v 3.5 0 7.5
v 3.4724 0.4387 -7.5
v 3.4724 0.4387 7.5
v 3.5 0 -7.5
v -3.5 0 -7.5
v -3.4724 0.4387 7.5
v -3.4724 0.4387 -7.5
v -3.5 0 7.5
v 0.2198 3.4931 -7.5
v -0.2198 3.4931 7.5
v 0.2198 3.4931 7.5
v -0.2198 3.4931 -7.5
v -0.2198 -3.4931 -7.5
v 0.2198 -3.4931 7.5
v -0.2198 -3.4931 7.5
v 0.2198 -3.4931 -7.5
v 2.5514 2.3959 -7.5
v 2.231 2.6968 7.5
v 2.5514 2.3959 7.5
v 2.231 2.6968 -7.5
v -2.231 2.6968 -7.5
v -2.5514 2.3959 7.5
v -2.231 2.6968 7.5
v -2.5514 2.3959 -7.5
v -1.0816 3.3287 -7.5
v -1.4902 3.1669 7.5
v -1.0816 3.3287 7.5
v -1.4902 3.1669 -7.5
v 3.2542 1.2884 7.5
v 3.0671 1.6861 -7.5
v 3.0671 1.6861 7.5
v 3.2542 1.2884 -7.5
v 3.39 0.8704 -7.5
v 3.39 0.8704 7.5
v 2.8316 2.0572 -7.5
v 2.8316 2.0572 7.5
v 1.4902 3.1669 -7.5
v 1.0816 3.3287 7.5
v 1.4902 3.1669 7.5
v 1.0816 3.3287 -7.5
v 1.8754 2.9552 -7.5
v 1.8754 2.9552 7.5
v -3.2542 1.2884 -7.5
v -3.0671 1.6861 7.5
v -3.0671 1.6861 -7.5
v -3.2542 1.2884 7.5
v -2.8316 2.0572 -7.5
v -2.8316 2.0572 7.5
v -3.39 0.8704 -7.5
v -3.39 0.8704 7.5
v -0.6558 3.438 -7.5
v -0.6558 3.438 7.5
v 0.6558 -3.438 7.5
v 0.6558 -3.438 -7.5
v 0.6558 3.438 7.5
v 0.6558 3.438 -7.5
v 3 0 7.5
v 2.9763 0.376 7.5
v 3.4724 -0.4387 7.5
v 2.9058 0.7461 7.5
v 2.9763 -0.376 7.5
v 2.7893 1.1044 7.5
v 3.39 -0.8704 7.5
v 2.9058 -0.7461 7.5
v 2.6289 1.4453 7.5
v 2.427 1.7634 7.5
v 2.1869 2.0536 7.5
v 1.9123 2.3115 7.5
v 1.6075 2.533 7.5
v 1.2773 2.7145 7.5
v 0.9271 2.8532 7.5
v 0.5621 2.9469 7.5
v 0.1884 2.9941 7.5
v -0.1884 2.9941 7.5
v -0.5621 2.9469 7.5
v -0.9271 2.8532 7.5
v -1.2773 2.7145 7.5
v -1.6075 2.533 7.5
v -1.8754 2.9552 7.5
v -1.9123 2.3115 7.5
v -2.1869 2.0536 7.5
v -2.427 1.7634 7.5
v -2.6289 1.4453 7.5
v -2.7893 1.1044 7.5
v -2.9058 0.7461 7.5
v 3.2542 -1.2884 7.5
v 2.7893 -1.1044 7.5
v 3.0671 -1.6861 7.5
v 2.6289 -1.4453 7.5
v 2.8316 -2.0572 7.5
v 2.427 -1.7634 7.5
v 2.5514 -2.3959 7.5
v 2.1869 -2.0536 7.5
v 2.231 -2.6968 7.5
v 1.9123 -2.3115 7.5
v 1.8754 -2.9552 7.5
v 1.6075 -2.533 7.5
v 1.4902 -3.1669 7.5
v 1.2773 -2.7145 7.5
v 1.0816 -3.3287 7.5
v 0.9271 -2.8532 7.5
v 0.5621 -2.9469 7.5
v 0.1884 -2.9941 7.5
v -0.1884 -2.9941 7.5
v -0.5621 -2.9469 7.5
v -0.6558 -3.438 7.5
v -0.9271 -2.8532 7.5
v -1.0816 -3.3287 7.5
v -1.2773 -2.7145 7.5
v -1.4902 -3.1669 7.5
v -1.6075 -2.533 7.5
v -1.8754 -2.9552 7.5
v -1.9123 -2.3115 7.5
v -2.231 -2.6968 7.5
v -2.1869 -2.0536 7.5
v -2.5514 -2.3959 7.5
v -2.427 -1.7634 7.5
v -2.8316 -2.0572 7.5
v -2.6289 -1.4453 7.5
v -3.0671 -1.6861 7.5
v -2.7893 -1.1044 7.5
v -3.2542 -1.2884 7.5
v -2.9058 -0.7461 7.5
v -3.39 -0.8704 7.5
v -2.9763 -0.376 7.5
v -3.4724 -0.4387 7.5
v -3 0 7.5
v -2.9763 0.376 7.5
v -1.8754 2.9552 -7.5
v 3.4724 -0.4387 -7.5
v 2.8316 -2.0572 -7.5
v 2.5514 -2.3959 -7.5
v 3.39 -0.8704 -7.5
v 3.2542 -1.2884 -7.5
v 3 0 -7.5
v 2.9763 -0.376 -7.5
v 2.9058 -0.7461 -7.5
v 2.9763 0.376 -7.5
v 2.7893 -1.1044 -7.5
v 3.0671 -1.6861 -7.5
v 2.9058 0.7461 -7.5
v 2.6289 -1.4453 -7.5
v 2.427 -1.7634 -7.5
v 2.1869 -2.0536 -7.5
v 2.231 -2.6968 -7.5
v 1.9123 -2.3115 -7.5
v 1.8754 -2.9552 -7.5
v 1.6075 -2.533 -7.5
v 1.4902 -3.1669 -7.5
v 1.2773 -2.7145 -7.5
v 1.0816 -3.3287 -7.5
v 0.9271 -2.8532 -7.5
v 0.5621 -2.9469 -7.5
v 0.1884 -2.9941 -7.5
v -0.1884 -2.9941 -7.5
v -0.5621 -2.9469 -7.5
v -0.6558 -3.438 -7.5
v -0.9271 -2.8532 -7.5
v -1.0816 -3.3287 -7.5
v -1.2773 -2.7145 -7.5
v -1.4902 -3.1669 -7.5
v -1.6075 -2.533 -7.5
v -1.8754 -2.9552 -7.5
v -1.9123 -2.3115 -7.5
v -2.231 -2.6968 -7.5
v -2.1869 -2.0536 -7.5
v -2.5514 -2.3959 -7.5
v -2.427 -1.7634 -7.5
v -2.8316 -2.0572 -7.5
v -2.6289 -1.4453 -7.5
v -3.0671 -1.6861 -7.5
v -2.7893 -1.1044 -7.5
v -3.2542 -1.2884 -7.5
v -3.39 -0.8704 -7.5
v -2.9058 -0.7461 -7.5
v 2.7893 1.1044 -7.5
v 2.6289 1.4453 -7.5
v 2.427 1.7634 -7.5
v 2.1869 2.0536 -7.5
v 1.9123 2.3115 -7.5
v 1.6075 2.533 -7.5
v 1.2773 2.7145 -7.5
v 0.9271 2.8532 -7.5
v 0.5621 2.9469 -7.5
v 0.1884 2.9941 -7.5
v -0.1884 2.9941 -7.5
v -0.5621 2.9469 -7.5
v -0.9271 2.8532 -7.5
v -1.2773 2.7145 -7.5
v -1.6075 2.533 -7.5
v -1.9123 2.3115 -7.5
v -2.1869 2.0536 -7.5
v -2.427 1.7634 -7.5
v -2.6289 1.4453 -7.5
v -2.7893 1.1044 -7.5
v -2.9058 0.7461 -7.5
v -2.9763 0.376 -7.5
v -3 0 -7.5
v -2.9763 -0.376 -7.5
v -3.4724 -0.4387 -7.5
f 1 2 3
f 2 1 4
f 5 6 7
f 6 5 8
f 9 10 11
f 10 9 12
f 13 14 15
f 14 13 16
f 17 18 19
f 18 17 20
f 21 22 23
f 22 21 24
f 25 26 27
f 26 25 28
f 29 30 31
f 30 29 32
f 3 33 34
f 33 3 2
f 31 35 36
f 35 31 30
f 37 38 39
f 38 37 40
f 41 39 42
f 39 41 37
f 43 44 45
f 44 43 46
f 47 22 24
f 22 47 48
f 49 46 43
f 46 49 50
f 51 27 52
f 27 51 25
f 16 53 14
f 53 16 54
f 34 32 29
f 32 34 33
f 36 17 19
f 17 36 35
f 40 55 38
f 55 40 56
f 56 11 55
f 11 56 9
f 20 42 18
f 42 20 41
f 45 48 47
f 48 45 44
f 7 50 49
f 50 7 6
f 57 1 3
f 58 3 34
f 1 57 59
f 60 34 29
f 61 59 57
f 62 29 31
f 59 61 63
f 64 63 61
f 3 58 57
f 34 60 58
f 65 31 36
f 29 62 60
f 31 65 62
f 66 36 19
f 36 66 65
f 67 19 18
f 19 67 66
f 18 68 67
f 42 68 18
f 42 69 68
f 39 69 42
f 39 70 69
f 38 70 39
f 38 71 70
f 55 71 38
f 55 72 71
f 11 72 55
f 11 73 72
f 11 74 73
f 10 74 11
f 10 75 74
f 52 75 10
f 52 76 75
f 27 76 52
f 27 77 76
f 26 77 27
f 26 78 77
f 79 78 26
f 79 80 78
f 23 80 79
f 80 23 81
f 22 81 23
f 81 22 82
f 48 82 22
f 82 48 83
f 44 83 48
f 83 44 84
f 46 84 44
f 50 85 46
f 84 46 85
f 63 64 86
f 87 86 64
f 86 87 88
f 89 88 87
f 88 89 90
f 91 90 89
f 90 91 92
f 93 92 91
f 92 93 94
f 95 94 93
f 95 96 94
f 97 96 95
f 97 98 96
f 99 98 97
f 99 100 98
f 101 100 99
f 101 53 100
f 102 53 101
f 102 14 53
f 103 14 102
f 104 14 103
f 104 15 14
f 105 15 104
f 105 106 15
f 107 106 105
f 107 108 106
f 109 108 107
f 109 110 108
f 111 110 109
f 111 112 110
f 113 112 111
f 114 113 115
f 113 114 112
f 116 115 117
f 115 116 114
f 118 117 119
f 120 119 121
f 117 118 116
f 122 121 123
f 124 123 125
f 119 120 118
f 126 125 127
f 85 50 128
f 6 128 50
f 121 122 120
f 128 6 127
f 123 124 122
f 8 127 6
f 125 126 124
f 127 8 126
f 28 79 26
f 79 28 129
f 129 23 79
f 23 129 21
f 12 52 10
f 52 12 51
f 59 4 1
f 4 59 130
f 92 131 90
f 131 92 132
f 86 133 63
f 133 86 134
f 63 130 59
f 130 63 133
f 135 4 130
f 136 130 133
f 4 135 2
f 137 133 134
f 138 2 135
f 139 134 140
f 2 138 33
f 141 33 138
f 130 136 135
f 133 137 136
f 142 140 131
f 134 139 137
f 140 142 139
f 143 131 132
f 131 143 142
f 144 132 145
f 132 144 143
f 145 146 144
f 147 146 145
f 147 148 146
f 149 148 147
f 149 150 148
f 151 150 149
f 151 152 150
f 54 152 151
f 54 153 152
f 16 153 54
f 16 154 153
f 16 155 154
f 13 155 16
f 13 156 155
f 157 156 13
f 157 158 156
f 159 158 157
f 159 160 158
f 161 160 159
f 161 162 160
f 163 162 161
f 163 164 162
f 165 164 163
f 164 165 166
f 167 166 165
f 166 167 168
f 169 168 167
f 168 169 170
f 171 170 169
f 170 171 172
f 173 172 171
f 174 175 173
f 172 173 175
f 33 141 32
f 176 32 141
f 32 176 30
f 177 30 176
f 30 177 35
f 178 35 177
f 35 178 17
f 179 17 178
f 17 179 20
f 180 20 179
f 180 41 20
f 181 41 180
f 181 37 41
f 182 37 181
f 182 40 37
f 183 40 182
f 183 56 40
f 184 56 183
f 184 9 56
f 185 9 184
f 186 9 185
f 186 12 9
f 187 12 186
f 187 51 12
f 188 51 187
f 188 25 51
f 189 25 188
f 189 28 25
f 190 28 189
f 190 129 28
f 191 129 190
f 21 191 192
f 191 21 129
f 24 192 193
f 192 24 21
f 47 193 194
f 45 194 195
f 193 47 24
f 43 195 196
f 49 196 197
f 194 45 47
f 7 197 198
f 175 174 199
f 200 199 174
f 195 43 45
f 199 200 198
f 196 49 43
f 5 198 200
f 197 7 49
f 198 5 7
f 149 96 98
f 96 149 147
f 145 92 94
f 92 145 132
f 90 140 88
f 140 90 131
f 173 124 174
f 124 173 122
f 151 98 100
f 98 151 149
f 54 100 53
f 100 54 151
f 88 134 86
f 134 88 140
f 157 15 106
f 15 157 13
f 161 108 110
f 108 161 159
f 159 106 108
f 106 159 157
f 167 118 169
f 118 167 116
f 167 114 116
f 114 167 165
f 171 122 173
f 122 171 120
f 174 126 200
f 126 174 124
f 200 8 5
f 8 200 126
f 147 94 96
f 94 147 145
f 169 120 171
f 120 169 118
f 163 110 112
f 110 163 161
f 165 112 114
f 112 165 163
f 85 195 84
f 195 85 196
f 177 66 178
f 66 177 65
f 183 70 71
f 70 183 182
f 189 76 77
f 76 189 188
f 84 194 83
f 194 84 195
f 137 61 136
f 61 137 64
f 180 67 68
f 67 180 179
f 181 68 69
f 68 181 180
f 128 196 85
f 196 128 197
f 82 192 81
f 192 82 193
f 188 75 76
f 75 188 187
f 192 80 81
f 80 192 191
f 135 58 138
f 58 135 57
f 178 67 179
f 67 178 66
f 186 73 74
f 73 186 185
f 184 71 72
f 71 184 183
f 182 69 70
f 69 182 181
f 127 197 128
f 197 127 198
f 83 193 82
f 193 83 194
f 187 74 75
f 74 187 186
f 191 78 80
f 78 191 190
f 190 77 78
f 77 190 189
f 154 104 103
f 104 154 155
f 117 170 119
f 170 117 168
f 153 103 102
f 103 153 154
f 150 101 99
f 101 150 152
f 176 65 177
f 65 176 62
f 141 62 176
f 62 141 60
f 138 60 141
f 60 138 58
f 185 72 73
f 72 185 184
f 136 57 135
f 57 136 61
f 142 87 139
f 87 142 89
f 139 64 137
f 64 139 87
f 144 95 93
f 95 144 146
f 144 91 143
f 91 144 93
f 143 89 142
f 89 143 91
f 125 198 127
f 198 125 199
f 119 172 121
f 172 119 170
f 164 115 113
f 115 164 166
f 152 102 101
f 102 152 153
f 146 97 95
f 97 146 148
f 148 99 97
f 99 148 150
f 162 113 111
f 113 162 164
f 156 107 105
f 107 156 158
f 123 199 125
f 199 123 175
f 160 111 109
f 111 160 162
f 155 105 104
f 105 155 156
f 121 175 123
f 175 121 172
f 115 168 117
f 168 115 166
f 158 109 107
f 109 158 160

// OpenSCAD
$fn = 50;


difference() {
	union() {
		translate(v = [0, 0, -7.5000000000]) {
			cylinder(h = 15, r = 3.5000000000);
		}
	}
	union() {
		translate(v = [0, 0, -100.0000000000]) {
			cylinder(h = 200, r = 3);
		}
	}
}
